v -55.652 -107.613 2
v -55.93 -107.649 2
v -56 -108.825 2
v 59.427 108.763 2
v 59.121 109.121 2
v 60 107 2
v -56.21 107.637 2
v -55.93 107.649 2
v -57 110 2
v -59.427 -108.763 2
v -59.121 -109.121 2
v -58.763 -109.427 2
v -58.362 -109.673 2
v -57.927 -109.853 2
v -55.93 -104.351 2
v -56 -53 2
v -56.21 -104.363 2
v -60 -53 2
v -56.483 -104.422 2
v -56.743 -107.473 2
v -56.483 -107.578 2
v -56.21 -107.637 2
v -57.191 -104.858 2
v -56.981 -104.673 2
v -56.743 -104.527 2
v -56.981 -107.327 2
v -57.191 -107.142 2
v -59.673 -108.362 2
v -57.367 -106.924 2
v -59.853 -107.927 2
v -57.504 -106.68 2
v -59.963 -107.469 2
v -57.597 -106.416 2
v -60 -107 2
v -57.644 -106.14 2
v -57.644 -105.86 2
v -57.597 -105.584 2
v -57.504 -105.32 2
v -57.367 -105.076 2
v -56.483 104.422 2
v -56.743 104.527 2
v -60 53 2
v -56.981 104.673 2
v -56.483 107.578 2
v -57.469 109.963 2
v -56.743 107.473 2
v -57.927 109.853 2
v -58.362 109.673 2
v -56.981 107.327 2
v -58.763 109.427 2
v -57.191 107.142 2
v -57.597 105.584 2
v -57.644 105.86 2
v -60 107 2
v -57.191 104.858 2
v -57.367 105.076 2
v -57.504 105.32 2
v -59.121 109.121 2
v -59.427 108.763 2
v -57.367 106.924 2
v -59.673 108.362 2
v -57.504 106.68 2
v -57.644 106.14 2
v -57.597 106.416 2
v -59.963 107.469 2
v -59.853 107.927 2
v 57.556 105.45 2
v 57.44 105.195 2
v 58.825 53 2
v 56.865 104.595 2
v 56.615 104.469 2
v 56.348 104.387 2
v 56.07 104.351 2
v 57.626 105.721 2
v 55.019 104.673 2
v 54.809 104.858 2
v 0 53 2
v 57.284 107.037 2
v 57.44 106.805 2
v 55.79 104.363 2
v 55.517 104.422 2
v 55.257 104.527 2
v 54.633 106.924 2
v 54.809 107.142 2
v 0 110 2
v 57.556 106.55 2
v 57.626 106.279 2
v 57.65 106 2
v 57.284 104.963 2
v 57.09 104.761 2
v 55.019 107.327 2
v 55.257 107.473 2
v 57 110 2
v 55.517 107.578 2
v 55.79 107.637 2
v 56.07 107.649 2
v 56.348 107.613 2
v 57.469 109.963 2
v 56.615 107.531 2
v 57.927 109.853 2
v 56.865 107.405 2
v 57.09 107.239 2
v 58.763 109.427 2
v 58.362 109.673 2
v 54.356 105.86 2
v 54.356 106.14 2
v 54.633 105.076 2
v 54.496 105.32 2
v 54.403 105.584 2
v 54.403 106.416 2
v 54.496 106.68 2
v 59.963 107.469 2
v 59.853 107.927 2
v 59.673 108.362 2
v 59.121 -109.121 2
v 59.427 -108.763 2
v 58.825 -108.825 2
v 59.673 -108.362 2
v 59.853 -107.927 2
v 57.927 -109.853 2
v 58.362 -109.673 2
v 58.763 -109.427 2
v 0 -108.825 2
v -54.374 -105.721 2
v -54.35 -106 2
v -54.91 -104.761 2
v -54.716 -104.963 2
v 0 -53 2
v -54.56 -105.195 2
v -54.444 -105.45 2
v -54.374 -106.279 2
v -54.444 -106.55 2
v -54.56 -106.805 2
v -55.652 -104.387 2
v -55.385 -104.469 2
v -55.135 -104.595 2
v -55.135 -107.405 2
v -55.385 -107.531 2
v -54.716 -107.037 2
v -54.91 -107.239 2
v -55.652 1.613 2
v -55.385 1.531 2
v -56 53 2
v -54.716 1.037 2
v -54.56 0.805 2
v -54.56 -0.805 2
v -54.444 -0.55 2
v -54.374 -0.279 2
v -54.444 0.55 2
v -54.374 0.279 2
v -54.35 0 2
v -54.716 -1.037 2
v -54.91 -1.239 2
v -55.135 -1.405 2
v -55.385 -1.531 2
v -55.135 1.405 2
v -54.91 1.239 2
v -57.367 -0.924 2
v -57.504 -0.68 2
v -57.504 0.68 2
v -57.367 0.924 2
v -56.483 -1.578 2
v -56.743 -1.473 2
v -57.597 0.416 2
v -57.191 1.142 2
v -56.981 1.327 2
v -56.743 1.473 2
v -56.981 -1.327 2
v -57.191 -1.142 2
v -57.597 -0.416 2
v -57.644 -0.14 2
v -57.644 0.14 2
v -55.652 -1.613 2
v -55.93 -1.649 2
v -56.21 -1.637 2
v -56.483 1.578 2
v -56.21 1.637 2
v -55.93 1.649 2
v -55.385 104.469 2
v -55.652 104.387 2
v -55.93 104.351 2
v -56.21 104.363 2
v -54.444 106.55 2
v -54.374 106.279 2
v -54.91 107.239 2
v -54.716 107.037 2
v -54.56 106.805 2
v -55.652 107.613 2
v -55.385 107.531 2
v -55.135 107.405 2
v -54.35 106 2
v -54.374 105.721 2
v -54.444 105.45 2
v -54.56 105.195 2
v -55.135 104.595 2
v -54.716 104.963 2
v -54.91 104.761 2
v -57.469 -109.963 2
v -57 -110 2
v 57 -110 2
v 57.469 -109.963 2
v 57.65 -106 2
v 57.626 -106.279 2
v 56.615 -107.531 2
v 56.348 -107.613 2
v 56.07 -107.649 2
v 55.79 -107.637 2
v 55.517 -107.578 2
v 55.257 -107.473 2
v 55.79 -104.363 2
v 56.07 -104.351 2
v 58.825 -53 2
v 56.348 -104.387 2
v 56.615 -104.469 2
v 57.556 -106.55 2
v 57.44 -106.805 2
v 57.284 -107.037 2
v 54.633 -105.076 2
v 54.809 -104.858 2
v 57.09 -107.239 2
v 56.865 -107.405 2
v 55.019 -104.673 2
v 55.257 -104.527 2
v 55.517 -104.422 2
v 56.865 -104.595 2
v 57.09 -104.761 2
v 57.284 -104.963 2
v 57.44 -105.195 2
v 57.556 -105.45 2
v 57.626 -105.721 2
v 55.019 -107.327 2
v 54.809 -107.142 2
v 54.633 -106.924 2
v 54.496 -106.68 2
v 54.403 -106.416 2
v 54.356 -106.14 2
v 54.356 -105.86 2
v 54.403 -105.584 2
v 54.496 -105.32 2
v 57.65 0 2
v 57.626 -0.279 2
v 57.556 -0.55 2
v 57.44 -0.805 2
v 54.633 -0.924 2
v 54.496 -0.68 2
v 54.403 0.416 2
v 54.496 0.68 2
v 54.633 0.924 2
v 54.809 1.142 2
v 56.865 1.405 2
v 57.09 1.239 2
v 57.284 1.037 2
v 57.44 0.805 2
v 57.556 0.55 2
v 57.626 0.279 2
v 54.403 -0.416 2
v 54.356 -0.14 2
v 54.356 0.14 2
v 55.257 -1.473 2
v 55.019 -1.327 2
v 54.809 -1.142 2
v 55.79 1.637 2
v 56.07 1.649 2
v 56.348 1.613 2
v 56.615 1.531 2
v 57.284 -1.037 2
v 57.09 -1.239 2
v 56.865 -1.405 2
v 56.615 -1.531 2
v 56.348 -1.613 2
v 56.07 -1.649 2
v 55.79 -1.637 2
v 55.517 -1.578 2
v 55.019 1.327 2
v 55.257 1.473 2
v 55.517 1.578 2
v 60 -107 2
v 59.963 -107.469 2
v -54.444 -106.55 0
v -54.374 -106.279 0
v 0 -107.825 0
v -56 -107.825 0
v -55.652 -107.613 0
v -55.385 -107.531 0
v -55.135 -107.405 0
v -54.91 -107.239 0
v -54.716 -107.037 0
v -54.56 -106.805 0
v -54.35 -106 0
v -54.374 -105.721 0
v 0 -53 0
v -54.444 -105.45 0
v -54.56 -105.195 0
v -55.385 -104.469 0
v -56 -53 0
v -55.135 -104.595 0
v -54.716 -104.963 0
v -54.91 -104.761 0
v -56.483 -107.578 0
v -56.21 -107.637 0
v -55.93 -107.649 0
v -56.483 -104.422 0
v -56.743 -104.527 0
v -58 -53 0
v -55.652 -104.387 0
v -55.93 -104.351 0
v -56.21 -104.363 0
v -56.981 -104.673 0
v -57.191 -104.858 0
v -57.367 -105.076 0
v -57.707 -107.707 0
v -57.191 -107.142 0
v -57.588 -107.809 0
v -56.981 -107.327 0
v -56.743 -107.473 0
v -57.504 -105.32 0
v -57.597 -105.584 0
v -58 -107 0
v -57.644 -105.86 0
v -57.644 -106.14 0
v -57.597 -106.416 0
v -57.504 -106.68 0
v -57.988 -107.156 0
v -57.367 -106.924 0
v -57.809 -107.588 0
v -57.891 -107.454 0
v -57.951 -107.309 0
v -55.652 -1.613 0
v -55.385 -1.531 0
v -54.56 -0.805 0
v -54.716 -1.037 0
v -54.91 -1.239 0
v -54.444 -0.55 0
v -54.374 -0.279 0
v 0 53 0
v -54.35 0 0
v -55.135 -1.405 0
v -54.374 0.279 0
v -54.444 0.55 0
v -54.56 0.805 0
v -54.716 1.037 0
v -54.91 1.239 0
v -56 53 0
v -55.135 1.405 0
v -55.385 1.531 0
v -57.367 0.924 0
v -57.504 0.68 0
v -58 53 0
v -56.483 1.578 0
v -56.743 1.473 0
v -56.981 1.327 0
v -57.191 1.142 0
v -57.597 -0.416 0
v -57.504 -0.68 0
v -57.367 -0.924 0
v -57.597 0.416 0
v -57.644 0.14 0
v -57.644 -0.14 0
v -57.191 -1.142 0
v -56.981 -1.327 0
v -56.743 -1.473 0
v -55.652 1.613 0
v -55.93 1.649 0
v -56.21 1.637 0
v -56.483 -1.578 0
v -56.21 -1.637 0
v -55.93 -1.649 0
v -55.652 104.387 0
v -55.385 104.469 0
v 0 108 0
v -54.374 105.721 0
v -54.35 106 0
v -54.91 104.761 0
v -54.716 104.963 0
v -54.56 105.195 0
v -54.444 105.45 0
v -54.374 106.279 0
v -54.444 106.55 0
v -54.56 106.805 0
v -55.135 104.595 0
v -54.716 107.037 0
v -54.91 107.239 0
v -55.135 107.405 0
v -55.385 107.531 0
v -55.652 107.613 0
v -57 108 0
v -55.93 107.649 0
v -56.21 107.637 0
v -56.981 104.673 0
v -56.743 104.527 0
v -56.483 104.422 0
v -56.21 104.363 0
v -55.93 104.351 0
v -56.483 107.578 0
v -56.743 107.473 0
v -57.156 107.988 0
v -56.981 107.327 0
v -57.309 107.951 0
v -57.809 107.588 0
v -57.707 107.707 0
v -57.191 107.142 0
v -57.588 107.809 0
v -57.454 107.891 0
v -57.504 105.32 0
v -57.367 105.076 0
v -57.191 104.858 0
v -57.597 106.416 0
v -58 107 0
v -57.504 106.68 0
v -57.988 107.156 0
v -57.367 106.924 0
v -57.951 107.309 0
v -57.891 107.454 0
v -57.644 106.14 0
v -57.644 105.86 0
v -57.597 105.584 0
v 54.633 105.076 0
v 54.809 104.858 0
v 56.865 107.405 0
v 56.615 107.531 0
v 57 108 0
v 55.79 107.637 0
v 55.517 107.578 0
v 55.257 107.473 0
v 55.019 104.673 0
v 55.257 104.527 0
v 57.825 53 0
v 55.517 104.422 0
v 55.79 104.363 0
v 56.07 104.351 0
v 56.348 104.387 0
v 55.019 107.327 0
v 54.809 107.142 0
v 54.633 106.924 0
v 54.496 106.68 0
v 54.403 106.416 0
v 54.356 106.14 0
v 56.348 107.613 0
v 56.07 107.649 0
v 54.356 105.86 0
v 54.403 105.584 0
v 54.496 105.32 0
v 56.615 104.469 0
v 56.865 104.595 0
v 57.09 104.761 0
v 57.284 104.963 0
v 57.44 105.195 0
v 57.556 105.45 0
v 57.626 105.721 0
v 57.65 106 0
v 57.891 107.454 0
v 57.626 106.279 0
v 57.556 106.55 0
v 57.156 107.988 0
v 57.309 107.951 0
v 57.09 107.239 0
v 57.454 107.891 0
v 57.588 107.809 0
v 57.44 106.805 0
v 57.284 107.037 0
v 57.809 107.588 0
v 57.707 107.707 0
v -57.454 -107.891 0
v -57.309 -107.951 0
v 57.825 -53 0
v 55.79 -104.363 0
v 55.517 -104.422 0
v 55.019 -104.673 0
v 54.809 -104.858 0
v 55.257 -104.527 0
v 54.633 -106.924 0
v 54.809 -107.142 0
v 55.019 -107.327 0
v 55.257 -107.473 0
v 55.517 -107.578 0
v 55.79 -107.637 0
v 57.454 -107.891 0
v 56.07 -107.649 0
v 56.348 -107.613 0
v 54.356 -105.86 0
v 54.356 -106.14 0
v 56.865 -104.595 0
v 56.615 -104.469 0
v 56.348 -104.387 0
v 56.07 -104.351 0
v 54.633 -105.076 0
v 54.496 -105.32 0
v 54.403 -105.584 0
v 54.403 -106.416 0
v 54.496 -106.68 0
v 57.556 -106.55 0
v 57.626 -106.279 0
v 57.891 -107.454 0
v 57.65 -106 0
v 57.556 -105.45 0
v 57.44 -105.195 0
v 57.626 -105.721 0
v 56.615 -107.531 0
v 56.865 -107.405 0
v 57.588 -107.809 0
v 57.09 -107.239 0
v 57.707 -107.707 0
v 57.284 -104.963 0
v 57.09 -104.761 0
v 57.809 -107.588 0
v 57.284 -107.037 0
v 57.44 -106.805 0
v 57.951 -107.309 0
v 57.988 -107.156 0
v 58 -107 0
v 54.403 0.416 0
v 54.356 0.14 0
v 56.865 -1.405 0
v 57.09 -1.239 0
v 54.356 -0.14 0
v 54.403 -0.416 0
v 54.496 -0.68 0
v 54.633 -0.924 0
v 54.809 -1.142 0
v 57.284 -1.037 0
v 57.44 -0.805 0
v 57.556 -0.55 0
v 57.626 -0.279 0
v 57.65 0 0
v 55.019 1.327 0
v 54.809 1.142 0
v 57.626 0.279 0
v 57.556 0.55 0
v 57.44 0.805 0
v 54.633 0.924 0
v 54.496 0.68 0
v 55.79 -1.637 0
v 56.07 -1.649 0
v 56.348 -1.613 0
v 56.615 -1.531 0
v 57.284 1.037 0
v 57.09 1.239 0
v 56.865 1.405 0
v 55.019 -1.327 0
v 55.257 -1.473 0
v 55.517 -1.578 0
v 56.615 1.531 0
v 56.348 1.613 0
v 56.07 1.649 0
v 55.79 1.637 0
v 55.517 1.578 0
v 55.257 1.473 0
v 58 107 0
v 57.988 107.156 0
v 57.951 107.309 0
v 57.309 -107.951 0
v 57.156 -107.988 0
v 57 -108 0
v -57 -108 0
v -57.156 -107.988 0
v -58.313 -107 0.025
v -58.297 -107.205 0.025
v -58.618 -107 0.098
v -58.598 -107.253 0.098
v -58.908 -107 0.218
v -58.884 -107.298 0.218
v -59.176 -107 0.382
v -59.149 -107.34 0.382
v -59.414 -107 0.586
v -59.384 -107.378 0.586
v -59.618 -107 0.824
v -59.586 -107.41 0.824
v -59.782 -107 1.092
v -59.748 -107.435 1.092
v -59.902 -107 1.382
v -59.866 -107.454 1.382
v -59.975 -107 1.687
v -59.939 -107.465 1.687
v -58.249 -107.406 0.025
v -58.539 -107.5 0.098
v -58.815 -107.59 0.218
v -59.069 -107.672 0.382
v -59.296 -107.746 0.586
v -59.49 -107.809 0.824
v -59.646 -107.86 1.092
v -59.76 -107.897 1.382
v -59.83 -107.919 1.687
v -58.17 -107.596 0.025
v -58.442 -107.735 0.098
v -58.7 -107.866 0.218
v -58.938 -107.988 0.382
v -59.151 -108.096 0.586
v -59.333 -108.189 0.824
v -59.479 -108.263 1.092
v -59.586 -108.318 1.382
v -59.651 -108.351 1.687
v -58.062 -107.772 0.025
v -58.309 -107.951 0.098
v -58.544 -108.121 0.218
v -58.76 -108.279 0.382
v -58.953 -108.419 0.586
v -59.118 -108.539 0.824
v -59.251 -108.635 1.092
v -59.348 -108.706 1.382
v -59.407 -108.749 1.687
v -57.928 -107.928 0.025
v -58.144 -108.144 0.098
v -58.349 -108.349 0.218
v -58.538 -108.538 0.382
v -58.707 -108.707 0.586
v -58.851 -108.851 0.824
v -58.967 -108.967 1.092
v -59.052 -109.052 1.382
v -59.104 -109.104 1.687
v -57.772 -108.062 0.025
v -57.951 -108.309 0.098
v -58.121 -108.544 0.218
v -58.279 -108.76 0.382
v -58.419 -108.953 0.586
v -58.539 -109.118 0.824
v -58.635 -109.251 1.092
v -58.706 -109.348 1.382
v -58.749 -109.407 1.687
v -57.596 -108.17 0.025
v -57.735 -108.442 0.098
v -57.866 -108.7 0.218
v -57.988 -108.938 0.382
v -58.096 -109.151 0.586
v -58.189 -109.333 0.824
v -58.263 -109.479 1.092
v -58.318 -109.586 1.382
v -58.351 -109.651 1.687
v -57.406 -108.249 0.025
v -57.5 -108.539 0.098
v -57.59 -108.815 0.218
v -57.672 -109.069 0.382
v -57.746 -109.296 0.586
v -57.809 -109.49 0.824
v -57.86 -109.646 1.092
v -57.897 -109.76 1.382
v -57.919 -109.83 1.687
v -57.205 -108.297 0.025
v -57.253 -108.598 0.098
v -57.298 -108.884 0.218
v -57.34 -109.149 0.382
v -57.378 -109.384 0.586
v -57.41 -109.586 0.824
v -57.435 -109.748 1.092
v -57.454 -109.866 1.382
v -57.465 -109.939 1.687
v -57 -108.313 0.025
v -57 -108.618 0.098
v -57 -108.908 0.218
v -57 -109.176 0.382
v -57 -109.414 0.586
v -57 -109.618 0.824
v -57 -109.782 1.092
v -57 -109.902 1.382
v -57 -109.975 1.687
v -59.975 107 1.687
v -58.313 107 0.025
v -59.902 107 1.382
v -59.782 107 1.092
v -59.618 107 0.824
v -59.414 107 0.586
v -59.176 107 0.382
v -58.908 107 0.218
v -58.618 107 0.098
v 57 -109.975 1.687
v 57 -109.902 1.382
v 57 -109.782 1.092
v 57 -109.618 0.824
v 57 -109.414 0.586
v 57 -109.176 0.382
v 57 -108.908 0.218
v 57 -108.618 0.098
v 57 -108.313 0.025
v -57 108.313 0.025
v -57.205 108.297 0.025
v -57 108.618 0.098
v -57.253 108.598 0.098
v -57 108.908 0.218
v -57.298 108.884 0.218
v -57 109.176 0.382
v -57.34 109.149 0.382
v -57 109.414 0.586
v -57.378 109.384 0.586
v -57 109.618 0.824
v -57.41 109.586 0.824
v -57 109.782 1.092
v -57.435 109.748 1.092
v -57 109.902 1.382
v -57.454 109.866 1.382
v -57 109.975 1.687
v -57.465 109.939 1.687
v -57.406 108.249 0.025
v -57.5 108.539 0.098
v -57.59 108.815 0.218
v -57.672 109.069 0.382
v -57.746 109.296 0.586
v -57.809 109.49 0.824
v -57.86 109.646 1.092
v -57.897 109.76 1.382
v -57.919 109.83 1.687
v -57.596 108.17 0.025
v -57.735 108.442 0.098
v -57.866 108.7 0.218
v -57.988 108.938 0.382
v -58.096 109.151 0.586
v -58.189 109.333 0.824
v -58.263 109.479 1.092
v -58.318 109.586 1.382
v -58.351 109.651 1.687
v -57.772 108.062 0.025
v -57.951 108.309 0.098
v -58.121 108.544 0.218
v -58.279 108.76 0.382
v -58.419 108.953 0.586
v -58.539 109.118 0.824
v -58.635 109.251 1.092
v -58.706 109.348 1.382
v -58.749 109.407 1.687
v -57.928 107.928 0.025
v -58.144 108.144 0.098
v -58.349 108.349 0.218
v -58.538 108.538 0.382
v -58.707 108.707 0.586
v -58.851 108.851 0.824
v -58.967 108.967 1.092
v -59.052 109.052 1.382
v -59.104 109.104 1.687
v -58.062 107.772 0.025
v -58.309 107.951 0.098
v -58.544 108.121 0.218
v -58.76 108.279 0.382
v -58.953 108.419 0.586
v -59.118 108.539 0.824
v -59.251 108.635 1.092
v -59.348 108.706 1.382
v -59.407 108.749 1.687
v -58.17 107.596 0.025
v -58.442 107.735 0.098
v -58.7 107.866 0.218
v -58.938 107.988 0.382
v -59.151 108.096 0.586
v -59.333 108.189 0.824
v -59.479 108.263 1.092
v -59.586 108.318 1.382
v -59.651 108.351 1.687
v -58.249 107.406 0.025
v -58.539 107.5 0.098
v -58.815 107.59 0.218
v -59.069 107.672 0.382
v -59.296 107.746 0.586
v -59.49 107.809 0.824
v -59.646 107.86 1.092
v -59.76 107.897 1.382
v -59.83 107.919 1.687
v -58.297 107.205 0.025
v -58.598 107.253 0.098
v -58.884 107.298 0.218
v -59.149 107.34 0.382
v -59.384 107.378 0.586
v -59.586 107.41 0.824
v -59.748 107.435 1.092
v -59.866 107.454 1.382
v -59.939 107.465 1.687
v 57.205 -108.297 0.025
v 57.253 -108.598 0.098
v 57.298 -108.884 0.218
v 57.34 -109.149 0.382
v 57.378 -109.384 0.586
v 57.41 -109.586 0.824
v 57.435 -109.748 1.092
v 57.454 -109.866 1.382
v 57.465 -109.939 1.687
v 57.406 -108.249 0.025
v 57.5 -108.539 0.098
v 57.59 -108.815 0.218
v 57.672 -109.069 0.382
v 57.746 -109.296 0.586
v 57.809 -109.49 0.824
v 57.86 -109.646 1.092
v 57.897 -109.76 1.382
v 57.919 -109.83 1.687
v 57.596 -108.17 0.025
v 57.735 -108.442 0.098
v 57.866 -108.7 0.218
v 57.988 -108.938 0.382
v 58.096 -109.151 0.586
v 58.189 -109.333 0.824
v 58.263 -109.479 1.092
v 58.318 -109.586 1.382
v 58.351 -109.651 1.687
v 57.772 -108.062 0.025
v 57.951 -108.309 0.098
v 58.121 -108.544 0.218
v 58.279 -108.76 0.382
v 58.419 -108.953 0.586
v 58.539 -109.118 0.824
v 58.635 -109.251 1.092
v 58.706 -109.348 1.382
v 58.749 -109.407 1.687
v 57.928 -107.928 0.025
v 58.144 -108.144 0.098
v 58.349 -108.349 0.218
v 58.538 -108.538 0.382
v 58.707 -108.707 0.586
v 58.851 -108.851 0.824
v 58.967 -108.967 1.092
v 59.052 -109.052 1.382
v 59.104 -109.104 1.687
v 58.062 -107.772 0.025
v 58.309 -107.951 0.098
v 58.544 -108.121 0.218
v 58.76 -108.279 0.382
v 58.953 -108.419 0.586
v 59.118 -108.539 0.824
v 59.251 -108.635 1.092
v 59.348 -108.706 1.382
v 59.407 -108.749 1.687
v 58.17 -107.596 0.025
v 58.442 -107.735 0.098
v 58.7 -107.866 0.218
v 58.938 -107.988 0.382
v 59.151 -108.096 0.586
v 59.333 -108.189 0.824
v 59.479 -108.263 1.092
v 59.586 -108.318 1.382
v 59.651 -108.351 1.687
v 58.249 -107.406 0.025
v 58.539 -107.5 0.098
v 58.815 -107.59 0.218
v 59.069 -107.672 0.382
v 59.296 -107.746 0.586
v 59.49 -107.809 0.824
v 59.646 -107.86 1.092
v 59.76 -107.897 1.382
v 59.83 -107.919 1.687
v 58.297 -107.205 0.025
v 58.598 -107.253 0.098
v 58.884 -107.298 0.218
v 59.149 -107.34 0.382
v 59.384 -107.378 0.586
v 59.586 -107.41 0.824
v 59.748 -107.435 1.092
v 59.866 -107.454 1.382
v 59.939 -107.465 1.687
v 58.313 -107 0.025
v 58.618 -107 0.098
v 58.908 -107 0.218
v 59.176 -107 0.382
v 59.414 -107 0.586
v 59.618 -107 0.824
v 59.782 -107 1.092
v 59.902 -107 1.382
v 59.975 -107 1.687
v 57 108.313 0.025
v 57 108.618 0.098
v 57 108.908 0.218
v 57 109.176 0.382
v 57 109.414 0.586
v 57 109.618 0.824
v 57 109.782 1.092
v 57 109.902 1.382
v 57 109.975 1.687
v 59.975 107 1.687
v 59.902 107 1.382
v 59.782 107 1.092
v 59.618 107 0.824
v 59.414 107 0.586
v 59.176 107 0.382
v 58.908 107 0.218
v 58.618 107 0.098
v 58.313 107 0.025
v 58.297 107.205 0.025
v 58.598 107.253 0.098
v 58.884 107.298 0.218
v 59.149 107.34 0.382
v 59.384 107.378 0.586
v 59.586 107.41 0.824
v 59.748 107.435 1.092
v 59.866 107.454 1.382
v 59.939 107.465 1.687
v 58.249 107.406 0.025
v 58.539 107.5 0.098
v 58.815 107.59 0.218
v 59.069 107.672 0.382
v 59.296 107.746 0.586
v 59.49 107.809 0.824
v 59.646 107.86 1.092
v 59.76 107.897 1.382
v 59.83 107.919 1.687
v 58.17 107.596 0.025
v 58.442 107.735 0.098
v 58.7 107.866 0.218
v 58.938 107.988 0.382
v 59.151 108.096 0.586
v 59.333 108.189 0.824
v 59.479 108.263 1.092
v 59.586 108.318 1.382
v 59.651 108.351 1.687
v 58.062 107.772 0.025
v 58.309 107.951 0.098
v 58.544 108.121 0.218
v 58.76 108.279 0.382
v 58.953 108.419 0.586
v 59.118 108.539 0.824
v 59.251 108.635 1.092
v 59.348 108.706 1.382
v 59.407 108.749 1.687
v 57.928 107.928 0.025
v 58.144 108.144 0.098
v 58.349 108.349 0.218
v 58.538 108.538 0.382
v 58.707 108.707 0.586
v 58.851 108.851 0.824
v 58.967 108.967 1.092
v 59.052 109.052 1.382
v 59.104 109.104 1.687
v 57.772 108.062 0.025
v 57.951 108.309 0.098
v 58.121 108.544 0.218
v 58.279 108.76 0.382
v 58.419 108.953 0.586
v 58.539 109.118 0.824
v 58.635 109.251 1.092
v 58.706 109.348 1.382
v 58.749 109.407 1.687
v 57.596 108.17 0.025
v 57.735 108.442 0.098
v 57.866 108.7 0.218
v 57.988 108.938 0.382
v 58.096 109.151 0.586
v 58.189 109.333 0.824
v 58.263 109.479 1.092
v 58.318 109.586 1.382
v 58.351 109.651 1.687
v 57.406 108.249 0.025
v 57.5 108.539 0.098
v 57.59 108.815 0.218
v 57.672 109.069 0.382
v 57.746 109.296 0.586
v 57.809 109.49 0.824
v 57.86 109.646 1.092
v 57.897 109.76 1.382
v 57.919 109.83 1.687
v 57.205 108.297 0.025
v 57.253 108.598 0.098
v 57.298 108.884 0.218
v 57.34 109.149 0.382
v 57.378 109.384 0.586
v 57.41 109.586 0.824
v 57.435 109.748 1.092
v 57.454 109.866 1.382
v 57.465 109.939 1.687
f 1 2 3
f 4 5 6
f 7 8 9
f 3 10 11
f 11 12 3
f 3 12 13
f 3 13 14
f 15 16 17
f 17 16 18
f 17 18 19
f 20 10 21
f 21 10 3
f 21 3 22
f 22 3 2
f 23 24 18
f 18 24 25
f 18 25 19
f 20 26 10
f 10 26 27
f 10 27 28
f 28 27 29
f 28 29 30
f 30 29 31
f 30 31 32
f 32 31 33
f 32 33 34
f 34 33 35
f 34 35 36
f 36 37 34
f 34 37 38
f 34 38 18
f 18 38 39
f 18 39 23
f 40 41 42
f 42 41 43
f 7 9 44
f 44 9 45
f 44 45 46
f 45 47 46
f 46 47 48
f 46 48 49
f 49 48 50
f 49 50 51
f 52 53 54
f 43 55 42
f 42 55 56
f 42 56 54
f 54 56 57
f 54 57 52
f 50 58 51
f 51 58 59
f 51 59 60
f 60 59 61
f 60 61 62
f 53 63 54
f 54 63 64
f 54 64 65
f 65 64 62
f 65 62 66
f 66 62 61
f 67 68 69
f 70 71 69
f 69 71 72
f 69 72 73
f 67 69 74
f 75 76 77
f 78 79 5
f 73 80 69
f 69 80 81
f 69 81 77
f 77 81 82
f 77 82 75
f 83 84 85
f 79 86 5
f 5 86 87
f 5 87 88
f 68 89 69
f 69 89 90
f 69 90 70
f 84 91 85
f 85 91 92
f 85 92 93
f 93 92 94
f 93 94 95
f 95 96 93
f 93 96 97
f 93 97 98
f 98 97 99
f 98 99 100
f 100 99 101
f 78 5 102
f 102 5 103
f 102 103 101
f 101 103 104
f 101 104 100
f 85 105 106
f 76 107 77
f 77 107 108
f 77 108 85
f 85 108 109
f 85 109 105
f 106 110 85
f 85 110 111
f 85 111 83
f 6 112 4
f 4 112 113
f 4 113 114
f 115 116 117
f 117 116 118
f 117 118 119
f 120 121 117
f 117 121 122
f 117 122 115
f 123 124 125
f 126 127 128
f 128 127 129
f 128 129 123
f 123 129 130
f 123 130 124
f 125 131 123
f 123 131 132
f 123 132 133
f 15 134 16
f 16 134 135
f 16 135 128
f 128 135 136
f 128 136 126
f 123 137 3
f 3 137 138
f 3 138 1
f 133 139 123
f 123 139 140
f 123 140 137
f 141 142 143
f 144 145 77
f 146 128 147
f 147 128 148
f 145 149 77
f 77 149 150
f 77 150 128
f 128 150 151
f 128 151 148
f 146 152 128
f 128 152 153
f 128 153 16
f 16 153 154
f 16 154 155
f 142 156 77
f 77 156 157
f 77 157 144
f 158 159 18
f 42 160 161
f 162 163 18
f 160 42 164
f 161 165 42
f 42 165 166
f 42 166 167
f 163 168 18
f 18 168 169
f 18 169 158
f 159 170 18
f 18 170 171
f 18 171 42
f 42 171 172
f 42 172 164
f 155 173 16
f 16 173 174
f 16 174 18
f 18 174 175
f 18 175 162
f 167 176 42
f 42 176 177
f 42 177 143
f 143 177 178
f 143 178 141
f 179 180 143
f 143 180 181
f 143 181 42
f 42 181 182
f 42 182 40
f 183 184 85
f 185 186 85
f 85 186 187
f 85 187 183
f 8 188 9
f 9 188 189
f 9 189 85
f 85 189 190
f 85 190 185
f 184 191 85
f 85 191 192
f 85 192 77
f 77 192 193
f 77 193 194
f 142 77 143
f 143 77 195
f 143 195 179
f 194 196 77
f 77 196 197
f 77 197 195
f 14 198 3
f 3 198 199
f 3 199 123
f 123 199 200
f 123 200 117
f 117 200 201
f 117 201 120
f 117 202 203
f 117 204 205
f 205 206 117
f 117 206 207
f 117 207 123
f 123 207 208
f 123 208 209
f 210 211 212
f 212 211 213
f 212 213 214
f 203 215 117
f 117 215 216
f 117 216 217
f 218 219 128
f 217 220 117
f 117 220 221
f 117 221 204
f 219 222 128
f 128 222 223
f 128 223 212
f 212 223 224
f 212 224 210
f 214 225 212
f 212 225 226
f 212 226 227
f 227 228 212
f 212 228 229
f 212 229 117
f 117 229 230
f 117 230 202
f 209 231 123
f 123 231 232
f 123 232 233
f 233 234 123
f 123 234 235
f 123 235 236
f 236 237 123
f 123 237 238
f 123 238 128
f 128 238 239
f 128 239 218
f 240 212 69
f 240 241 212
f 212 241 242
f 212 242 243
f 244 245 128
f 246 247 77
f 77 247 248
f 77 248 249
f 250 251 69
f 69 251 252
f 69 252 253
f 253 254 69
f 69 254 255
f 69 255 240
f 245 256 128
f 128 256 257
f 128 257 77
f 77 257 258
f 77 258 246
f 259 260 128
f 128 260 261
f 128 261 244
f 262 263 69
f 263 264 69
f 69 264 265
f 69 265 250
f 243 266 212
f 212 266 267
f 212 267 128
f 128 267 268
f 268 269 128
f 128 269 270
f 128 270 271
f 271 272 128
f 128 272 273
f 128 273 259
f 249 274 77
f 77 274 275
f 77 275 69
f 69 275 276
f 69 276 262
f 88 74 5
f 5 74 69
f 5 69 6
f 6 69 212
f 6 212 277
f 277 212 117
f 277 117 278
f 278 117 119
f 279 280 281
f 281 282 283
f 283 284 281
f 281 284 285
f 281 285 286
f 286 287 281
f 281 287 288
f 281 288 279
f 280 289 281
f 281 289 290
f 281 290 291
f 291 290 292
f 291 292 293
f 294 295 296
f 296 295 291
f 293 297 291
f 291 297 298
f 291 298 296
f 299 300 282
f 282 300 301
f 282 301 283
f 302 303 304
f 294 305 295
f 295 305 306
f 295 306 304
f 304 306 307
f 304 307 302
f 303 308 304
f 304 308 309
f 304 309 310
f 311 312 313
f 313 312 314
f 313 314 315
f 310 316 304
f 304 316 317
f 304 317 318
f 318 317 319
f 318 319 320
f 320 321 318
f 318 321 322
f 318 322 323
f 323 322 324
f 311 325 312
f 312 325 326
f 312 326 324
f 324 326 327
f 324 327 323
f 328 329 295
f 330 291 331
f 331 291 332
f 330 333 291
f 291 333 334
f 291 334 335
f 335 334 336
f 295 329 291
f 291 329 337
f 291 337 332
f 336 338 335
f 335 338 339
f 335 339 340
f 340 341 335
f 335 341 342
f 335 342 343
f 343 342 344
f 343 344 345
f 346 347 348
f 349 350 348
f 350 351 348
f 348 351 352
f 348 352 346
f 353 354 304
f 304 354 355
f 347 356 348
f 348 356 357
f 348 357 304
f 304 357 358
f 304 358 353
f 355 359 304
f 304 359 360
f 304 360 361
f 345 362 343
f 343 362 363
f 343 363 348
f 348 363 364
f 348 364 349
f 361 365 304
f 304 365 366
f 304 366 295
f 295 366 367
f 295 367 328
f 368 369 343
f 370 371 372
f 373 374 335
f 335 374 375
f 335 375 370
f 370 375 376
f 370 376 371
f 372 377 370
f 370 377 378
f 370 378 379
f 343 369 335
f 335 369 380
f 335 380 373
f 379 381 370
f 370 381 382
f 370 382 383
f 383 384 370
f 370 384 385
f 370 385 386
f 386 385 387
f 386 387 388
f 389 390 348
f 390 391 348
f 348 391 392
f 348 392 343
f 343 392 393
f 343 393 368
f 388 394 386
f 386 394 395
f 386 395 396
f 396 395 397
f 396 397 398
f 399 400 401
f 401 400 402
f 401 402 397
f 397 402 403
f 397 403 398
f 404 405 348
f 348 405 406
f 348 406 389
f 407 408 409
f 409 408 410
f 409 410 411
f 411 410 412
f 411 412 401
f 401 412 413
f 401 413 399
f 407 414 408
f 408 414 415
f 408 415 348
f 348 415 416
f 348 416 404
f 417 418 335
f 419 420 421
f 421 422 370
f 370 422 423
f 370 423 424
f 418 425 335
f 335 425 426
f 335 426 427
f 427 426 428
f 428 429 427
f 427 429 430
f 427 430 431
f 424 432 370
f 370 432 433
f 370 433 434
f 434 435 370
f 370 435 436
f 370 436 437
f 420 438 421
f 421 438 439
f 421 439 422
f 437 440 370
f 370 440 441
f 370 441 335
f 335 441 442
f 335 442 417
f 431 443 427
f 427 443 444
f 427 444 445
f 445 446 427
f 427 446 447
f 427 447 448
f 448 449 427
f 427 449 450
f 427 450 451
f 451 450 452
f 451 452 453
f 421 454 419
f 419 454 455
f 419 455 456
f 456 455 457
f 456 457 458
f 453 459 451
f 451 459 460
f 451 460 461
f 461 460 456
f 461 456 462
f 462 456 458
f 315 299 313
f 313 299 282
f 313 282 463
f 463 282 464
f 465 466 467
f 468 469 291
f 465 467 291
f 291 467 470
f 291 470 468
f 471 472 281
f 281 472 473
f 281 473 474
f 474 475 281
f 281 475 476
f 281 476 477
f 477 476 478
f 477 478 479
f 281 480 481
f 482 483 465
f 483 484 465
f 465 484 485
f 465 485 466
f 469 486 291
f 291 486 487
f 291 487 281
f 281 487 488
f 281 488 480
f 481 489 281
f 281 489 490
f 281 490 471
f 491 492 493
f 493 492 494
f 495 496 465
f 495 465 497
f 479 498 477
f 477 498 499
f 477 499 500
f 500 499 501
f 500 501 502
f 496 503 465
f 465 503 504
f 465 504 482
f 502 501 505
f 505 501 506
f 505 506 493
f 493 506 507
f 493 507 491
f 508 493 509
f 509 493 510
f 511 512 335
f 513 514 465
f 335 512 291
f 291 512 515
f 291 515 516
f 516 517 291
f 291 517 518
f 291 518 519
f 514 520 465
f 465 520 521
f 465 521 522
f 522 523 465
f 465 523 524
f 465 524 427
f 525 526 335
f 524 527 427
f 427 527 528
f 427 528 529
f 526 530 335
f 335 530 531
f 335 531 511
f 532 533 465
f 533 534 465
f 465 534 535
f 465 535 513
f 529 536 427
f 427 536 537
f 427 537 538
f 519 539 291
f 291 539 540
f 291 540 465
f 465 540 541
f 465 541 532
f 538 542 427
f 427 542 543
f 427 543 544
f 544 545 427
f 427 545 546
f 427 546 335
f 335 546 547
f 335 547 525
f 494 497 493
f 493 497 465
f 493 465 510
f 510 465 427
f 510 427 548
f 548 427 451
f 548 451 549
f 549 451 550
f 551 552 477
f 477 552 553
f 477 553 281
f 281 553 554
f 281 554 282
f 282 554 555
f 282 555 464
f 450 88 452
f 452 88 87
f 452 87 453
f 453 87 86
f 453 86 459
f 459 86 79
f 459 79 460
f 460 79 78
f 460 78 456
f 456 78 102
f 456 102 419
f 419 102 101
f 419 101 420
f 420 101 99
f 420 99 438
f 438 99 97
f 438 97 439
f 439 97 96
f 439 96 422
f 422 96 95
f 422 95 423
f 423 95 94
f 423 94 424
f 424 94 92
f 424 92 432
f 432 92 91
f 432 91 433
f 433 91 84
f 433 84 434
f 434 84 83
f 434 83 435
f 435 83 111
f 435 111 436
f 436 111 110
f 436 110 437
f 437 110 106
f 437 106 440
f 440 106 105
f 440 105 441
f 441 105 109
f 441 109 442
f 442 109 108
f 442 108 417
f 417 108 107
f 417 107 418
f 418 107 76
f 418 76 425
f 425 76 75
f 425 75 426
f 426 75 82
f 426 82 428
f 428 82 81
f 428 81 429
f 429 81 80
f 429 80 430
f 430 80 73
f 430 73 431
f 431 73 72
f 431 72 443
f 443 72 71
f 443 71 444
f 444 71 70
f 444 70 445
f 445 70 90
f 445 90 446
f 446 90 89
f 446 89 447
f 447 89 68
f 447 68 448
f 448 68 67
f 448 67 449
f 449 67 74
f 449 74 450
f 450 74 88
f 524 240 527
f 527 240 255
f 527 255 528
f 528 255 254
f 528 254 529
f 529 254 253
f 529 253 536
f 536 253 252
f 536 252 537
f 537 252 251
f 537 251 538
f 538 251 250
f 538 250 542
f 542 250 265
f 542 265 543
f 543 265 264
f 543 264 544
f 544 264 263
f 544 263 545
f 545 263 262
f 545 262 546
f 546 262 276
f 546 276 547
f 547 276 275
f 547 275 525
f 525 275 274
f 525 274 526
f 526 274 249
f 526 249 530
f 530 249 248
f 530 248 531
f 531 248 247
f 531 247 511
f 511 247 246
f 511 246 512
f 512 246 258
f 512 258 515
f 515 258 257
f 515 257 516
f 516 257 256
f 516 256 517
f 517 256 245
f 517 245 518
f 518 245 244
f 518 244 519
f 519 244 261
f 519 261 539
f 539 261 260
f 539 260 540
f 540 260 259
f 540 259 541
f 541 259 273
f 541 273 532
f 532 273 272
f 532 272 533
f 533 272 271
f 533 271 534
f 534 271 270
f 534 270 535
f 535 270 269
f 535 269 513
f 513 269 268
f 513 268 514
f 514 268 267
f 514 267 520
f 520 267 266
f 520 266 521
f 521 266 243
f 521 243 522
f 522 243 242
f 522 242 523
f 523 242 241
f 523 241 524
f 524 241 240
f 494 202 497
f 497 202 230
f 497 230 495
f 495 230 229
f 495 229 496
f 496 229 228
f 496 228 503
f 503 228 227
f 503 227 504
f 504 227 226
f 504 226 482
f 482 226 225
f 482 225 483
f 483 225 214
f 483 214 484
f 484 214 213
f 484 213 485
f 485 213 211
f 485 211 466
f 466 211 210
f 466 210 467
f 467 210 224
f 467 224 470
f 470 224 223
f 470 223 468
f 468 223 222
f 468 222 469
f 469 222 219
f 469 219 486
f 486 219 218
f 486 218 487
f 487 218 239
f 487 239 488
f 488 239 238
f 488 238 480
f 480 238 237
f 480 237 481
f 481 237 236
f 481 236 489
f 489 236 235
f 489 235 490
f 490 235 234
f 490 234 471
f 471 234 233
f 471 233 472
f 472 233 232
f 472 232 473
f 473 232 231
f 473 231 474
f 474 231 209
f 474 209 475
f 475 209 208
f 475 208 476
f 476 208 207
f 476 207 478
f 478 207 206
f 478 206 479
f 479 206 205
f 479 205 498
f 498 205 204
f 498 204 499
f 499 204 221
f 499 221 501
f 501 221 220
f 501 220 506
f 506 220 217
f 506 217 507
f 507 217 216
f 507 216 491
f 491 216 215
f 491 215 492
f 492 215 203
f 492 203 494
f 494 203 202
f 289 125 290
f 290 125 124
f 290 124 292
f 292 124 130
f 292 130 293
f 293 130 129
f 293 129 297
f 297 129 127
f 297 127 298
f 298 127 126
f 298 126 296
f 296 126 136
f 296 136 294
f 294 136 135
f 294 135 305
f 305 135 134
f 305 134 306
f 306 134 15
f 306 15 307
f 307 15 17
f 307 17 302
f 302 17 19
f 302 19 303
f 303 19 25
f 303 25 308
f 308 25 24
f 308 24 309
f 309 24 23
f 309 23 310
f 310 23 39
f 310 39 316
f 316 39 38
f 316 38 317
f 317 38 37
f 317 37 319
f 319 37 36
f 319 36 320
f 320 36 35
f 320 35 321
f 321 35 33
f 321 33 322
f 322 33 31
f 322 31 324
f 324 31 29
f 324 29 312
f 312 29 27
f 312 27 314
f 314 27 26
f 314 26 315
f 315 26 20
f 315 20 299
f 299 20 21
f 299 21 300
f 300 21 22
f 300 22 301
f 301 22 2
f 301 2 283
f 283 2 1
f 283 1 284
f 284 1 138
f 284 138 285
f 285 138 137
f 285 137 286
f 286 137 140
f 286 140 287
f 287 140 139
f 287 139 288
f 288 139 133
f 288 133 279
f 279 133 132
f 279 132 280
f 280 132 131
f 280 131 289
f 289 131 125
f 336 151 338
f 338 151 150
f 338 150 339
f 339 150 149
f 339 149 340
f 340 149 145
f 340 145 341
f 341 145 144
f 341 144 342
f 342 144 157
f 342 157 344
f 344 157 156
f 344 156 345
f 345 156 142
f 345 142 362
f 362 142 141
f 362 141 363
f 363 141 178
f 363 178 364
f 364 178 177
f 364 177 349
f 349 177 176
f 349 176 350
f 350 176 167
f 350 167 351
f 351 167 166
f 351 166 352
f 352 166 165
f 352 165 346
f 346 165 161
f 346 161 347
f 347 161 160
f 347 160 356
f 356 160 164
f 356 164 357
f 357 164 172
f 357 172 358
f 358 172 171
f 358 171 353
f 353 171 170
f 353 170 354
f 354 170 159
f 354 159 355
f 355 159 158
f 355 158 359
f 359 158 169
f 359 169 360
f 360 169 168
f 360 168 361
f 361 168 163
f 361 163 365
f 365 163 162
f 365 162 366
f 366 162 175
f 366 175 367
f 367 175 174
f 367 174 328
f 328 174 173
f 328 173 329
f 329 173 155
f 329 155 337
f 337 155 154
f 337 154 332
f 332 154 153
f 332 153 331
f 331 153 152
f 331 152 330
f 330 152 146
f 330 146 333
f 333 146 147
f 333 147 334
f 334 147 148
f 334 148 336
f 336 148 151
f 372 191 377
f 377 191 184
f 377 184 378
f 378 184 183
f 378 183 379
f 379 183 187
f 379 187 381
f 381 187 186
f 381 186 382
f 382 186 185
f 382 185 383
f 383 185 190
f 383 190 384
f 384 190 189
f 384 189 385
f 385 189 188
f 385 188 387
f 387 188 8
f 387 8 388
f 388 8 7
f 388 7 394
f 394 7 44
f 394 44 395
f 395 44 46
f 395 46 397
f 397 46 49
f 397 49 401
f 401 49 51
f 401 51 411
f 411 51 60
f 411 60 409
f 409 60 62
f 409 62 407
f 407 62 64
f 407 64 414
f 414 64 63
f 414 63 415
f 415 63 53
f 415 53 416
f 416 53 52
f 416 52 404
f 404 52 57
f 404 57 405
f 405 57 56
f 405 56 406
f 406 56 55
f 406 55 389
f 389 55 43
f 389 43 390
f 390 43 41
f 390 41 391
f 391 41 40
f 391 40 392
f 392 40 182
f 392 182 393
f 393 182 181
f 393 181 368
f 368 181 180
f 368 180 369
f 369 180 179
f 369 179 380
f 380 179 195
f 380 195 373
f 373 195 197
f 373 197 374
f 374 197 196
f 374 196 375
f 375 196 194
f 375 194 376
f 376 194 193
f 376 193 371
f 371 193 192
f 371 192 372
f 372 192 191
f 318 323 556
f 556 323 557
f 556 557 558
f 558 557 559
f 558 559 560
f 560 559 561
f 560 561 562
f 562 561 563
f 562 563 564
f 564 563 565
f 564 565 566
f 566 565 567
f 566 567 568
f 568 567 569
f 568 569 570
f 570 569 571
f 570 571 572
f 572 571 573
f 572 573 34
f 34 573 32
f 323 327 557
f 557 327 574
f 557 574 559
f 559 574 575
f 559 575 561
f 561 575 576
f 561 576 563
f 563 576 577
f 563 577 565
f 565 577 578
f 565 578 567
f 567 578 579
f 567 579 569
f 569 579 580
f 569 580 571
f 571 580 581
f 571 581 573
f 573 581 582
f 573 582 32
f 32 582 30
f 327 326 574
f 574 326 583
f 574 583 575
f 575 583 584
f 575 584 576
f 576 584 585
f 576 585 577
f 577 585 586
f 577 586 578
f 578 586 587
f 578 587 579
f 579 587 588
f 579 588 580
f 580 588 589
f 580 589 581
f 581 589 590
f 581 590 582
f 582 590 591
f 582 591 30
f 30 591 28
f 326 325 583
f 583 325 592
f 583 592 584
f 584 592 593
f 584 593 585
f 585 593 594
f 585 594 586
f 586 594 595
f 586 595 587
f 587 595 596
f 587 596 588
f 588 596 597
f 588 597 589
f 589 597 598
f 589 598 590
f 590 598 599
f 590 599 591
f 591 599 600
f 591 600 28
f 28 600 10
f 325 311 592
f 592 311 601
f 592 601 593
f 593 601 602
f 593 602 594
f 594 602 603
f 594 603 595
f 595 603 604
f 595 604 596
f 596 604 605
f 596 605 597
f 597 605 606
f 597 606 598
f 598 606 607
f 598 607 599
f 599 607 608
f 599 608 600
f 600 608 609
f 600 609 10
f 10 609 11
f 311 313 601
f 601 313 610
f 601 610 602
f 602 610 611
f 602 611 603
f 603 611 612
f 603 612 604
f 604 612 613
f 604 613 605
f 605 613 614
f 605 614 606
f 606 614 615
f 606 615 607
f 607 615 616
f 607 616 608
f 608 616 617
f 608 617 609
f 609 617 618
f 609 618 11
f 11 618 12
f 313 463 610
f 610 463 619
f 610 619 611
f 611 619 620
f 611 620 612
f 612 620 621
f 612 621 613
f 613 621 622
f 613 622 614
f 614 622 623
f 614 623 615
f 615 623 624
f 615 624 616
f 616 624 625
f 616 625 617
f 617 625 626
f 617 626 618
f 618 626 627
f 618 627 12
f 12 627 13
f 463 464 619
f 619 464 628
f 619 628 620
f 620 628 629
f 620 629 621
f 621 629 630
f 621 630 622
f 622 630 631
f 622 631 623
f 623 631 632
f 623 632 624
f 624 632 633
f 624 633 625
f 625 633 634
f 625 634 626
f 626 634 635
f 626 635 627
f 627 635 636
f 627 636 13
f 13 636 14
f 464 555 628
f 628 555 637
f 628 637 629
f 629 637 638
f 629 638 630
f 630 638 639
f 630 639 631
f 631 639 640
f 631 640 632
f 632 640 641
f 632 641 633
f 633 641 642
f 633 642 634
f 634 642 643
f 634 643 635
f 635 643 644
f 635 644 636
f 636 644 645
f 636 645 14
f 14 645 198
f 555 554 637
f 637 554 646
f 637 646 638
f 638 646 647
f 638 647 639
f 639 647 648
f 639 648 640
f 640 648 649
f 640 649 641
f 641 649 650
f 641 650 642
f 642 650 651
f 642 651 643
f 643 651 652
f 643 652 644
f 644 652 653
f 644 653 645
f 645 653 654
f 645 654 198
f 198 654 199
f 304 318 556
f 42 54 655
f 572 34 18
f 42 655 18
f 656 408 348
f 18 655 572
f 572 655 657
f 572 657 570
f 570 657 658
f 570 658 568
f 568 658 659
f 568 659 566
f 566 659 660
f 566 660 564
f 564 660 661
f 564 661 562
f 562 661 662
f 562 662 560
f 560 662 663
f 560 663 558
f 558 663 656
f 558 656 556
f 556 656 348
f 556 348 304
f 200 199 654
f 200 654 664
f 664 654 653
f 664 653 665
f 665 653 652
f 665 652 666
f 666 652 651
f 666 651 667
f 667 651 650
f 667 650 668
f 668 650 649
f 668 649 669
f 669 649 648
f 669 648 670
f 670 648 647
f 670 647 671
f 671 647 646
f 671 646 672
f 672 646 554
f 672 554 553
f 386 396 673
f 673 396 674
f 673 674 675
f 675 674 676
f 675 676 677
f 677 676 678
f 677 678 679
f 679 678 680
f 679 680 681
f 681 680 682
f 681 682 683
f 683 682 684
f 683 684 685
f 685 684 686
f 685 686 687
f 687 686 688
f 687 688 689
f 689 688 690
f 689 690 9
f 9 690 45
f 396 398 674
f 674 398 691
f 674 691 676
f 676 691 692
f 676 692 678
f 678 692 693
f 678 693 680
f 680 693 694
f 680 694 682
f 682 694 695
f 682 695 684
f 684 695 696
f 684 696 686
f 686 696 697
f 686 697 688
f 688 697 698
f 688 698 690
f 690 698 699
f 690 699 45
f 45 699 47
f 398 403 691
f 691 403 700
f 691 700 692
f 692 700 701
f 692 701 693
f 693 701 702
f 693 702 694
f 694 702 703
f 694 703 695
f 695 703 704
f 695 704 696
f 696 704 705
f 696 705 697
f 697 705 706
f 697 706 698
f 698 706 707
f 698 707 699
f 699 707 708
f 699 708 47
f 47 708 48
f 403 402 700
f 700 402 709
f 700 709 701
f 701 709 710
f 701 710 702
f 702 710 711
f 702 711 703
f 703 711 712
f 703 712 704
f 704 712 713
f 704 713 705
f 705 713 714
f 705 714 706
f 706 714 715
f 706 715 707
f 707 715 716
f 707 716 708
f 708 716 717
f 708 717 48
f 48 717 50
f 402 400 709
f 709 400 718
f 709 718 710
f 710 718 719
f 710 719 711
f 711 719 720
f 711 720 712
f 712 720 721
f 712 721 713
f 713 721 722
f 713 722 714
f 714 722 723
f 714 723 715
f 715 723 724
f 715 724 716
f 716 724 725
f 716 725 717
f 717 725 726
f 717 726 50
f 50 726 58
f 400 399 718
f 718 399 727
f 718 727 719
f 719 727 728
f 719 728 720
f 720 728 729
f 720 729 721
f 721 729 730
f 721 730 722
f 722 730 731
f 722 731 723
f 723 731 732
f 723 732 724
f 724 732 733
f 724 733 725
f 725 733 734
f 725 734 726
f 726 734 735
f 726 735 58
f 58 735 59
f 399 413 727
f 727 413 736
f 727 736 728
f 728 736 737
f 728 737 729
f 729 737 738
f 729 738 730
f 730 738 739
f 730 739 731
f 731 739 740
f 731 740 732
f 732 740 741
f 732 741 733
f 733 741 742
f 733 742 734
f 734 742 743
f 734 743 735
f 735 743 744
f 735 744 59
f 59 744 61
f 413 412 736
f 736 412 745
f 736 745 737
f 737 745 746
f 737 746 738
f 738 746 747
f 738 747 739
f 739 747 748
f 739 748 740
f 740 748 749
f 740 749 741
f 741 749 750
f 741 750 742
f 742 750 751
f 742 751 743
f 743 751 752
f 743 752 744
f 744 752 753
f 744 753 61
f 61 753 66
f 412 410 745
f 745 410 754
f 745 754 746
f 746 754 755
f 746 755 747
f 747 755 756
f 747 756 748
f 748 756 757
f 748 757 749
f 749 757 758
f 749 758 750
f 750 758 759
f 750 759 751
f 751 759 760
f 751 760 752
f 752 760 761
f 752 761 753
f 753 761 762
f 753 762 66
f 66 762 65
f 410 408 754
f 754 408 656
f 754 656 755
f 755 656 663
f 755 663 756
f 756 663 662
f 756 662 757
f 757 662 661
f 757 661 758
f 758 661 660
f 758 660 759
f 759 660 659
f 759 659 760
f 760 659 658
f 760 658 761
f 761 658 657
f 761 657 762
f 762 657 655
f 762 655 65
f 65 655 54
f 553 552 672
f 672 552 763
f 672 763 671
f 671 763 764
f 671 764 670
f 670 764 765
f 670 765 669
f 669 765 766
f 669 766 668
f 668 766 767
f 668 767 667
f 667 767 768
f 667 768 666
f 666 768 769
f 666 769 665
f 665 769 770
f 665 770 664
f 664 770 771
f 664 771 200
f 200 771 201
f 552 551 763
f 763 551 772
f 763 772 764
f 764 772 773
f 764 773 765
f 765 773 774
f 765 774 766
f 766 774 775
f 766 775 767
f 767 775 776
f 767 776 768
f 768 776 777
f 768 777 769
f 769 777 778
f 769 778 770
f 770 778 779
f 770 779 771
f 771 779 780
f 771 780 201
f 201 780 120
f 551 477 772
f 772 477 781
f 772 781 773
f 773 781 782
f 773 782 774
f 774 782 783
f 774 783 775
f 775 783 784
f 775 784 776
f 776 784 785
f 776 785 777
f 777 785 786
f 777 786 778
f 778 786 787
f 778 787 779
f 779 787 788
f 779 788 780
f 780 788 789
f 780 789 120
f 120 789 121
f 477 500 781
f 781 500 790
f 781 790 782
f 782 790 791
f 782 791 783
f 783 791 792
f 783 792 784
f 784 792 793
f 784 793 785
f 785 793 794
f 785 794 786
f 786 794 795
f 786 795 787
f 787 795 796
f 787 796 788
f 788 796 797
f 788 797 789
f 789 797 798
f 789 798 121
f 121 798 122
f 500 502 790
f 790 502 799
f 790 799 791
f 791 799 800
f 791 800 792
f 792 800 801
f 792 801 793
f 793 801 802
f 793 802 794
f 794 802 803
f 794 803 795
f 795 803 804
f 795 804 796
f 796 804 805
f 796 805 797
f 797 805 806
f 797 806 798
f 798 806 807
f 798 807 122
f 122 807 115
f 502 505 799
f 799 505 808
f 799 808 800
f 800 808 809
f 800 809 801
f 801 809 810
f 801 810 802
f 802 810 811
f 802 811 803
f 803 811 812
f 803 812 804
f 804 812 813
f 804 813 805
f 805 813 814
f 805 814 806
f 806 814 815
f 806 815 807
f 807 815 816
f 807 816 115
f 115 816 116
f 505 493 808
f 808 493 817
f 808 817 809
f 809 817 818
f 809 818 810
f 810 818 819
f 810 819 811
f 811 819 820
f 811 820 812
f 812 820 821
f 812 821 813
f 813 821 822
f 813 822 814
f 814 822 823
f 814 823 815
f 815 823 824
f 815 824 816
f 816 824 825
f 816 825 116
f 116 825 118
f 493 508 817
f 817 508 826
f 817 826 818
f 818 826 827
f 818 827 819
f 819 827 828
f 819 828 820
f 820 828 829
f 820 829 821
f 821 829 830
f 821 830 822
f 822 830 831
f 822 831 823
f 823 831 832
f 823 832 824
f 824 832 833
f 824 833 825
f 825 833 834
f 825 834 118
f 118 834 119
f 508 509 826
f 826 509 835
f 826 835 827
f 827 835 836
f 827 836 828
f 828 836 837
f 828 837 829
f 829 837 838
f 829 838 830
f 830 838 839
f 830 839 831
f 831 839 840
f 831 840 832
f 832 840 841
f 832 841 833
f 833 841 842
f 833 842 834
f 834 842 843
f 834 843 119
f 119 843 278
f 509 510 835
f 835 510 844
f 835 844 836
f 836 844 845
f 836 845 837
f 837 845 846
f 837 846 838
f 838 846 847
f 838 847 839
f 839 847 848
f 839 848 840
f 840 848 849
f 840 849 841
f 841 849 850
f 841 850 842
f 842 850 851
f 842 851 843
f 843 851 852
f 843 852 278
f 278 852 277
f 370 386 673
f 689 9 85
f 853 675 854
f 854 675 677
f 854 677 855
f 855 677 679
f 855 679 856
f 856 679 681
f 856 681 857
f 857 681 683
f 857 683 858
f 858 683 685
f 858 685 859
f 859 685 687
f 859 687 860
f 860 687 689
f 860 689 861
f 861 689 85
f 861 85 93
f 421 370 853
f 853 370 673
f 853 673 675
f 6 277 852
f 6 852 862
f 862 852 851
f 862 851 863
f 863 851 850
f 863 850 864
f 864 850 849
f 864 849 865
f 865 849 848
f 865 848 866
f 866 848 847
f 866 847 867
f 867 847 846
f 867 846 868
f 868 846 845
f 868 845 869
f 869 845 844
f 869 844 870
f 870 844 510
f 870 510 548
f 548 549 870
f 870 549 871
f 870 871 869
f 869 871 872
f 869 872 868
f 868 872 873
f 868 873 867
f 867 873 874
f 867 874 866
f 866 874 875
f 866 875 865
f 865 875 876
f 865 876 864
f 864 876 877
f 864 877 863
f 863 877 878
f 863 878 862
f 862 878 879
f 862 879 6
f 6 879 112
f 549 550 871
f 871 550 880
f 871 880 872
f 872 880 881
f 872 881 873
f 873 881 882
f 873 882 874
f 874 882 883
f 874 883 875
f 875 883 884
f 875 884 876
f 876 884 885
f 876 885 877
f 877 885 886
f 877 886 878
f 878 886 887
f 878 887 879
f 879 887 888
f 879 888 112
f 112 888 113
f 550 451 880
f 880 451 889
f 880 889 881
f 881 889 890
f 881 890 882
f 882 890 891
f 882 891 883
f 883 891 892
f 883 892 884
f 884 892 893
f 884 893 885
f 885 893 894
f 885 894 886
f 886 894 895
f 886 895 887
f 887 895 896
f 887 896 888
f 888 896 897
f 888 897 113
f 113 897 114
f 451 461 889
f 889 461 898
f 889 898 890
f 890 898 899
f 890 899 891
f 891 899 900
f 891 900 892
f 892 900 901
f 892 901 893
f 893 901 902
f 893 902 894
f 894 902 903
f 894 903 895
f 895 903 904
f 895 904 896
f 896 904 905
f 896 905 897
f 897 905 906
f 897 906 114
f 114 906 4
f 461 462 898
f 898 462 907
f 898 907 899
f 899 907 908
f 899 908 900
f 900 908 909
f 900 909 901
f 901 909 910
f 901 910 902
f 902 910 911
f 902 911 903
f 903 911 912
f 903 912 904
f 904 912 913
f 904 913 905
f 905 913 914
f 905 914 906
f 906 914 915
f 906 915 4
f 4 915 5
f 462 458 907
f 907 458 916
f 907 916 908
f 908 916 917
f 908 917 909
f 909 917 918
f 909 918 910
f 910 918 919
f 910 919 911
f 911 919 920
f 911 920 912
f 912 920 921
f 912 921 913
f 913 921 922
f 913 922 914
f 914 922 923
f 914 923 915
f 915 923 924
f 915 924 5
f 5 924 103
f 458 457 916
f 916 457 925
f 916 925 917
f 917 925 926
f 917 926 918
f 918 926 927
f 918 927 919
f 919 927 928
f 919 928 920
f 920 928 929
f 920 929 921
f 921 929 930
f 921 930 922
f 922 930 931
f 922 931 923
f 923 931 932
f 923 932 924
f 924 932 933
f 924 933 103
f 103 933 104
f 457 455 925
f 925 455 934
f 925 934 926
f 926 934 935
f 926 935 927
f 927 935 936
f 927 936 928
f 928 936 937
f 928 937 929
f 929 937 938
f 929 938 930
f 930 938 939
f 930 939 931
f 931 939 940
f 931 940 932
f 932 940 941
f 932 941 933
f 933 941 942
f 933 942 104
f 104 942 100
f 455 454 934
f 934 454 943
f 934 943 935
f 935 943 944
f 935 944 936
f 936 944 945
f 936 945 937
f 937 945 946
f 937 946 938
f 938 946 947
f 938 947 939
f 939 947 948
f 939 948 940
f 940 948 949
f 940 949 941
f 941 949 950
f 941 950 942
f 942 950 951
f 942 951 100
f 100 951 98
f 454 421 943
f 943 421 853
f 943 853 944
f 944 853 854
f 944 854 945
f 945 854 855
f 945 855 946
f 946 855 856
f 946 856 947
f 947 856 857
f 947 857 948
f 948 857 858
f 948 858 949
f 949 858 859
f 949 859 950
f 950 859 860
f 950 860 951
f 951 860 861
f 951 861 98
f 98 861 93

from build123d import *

# Parameters (mm, degrees)
SKETCH1_W           = 120
SKETCH1_H           = 220
BOSS_EXTRUDE1_DEPTH = 2
SKETCH3_R           = 1.65
CUT_EXTRUDE1_DEPTH  = 126.315601583
FILLET3_R           = 3
FILLET1_R           = 2


with BuildPart() as part:
    # Sketch1 → Boss-Extrude1 (new body)
    with BuildSketch(Plane.XY):
        Rectangle(SKETCH1_W, SKETCH1_H)
    extrude(amount=BOSS_EXTRUDE1_DEPTH)

    # Sketch3 → Cut-Extrude1 (cut, through all)
    with BuildSketch(Plane.XY.offset(2)):
        with Locations((56, 106)):
            Circle(SKETCH3_R)
        with Locations((-56, 106)):
            Circle(SKETCH3_R)
        with Locations((-56, 0)):
            Circle(SKETCH3_R)
        with Locations((-56, -106)):
            Circle(SKETCH3_R)
        with Locations((56, -106)):
            Circle(SKETCH3_R)
        with Locations((56, 0)):
            Circle(SKETCH3_R)
    extrude(amount=-CUT_EXTRUDE1_DEPTH, mode=Mode.SUBTRACT)

    # Fillet3
    fillet3_edges = [part.edges().sort_by_distance(p)[0] for p in [
        (60, -110, 1),
        (-60, -110, 1),
        (-60, 110, 1),
        (60, 110, 1),
    ]]
    fillet(fillet3_edges, radius=FILLET3_R)

    # Fillet1
    fillet1_edges = [part.edges().sort_by_distance(p)[0] for p in [
        (-60, 0, 0),
        (0, -110, 0),
        (60, 0, 0),
        (0, 110, 0),
        (59.121320344, 109.121320344, 0),
        (59.121320344, -109.121320344, 0),
        (-59.121320344, -109.121320344, 0),
        (-59.121320344, 109.121320344, 0),
    ]]
    fillet(fillet1_edges, radius=FILLET1_R - 0.0001)  # a hair under: the kernel refuses the full size


solid = part.part
